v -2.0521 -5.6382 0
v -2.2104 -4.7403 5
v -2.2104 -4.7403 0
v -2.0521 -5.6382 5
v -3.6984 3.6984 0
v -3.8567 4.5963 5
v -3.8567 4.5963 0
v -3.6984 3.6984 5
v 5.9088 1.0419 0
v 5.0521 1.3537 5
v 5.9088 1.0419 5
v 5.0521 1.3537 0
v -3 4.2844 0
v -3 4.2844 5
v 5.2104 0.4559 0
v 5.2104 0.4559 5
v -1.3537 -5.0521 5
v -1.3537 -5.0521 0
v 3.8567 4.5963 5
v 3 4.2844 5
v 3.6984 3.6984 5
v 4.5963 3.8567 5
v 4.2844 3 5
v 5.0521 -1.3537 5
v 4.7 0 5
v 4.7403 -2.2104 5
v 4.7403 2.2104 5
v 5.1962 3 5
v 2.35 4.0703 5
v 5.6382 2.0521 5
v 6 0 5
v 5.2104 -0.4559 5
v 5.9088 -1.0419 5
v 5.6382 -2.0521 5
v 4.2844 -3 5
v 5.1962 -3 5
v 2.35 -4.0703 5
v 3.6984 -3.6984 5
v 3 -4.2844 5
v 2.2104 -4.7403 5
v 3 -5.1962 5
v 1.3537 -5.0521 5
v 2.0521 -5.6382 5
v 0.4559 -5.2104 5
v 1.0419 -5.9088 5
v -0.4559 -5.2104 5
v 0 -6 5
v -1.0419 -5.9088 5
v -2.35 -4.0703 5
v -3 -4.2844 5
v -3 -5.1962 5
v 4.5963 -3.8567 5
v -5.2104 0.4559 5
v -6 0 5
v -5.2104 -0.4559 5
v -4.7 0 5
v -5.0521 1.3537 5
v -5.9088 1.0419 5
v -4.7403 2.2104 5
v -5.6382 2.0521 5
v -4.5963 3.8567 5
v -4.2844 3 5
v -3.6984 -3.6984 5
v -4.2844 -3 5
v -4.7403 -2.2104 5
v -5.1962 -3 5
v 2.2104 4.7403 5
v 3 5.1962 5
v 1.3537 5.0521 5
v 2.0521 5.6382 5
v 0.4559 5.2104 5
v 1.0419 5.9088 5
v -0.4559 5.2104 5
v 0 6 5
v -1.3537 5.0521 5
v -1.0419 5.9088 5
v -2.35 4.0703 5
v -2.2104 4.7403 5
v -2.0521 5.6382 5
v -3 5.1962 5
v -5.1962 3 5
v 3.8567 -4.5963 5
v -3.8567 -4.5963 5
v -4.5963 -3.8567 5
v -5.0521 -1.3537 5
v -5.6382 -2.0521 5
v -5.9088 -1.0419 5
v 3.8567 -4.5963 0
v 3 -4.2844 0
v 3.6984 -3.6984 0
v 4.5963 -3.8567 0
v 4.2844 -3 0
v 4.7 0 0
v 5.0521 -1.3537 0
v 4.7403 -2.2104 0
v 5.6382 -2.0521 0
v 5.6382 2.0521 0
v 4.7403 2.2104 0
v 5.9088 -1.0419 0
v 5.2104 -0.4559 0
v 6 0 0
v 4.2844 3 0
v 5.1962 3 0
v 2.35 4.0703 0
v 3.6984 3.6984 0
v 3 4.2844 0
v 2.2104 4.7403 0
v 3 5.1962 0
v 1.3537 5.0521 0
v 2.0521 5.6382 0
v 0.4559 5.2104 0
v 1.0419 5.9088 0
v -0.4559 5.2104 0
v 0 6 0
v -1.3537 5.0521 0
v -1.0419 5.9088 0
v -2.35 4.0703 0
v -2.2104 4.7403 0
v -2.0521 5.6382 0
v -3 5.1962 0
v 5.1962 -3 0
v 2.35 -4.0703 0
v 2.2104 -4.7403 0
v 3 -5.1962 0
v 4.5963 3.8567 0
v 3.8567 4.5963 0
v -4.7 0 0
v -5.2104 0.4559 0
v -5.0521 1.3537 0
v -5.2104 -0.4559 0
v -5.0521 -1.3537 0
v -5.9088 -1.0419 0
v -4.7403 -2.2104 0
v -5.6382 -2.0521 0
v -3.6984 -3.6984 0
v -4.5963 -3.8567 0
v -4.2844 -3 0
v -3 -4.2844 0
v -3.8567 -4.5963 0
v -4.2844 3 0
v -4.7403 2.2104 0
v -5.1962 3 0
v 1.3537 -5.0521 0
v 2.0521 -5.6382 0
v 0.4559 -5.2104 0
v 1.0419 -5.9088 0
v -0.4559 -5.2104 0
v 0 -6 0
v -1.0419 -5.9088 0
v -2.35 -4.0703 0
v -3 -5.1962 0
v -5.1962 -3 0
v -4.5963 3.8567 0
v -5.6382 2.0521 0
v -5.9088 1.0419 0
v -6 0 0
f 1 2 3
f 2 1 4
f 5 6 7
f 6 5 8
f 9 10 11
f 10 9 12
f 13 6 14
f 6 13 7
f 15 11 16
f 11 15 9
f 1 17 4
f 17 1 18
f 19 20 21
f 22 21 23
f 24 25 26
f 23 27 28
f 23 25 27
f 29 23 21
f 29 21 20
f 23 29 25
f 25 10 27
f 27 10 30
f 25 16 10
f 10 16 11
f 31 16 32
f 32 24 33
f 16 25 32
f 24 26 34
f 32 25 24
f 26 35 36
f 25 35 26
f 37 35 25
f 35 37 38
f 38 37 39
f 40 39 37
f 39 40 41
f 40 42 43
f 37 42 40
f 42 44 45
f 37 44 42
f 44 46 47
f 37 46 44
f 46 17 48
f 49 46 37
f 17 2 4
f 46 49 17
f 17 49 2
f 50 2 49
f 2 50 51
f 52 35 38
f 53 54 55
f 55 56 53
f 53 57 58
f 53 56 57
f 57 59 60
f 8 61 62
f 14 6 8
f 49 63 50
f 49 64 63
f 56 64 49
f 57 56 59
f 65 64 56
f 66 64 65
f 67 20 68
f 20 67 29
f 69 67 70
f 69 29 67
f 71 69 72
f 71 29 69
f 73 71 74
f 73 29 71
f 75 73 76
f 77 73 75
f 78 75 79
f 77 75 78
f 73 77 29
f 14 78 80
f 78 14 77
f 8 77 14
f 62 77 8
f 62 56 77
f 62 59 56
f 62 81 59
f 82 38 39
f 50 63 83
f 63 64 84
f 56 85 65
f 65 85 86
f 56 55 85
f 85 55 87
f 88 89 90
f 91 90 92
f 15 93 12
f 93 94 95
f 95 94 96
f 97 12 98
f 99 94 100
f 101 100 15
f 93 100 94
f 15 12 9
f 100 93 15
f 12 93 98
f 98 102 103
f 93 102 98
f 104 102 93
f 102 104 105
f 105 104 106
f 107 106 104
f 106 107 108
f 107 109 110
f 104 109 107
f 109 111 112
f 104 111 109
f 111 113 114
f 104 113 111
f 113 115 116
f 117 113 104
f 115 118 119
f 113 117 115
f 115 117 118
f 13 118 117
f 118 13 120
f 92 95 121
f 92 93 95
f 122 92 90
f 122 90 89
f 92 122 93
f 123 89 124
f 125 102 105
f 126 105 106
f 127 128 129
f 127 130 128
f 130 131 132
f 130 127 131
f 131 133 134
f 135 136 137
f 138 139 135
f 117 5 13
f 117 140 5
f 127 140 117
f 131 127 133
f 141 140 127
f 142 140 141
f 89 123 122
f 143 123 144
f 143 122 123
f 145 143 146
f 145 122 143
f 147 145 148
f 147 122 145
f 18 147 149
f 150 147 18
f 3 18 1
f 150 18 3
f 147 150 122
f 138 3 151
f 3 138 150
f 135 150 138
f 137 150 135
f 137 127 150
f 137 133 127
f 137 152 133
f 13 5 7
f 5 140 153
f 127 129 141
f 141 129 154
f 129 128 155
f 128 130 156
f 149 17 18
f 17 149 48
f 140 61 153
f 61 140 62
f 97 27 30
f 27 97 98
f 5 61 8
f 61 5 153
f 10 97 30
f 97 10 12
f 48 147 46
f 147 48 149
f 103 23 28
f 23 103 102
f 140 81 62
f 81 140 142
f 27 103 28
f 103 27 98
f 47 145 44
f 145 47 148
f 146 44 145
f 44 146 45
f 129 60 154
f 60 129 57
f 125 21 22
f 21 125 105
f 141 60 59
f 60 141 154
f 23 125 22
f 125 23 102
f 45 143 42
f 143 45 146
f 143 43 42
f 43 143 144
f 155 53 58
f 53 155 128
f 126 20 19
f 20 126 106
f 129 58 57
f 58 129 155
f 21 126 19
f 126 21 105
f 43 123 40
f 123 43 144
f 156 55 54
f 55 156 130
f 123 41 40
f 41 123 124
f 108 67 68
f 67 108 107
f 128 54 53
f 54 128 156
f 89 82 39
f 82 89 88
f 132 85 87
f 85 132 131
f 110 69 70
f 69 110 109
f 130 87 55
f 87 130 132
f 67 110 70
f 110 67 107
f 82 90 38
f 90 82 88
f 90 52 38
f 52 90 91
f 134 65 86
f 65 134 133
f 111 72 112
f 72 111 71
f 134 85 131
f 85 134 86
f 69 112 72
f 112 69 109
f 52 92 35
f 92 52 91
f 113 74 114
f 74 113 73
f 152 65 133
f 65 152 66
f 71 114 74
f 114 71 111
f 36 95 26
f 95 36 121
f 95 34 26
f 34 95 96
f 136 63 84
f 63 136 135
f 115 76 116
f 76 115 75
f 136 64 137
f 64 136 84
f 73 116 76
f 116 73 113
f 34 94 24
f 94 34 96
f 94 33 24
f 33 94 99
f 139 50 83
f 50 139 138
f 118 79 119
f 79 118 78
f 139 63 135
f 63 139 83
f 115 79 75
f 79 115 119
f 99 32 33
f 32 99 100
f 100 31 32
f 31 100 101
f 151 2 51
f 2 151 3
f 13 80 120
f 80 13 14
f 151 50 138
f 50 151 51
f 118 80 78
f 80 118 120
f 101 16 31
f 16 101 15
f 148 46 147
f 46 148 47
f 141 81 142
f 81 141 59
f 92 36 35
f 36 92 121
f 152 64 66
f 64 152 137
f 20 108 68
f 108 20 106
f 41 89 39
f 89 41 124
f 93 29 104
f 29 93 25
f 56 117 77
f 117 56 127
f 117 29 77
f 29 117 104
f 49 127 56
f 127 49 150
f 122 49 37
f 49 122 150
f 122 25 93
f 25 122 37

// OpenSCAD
height = 5;
sma = 4.7;

union() {
    difference() {
        union() {
            for (i=[1:36]) {
                rotate(i*10)
                cylinder(h=height,r=sma+1.3,$fn=3);
            }
        }
        translate([0,0,-0.1])
            cylinder(h=height+1,r=sma,$fn=6);
    }
 }
